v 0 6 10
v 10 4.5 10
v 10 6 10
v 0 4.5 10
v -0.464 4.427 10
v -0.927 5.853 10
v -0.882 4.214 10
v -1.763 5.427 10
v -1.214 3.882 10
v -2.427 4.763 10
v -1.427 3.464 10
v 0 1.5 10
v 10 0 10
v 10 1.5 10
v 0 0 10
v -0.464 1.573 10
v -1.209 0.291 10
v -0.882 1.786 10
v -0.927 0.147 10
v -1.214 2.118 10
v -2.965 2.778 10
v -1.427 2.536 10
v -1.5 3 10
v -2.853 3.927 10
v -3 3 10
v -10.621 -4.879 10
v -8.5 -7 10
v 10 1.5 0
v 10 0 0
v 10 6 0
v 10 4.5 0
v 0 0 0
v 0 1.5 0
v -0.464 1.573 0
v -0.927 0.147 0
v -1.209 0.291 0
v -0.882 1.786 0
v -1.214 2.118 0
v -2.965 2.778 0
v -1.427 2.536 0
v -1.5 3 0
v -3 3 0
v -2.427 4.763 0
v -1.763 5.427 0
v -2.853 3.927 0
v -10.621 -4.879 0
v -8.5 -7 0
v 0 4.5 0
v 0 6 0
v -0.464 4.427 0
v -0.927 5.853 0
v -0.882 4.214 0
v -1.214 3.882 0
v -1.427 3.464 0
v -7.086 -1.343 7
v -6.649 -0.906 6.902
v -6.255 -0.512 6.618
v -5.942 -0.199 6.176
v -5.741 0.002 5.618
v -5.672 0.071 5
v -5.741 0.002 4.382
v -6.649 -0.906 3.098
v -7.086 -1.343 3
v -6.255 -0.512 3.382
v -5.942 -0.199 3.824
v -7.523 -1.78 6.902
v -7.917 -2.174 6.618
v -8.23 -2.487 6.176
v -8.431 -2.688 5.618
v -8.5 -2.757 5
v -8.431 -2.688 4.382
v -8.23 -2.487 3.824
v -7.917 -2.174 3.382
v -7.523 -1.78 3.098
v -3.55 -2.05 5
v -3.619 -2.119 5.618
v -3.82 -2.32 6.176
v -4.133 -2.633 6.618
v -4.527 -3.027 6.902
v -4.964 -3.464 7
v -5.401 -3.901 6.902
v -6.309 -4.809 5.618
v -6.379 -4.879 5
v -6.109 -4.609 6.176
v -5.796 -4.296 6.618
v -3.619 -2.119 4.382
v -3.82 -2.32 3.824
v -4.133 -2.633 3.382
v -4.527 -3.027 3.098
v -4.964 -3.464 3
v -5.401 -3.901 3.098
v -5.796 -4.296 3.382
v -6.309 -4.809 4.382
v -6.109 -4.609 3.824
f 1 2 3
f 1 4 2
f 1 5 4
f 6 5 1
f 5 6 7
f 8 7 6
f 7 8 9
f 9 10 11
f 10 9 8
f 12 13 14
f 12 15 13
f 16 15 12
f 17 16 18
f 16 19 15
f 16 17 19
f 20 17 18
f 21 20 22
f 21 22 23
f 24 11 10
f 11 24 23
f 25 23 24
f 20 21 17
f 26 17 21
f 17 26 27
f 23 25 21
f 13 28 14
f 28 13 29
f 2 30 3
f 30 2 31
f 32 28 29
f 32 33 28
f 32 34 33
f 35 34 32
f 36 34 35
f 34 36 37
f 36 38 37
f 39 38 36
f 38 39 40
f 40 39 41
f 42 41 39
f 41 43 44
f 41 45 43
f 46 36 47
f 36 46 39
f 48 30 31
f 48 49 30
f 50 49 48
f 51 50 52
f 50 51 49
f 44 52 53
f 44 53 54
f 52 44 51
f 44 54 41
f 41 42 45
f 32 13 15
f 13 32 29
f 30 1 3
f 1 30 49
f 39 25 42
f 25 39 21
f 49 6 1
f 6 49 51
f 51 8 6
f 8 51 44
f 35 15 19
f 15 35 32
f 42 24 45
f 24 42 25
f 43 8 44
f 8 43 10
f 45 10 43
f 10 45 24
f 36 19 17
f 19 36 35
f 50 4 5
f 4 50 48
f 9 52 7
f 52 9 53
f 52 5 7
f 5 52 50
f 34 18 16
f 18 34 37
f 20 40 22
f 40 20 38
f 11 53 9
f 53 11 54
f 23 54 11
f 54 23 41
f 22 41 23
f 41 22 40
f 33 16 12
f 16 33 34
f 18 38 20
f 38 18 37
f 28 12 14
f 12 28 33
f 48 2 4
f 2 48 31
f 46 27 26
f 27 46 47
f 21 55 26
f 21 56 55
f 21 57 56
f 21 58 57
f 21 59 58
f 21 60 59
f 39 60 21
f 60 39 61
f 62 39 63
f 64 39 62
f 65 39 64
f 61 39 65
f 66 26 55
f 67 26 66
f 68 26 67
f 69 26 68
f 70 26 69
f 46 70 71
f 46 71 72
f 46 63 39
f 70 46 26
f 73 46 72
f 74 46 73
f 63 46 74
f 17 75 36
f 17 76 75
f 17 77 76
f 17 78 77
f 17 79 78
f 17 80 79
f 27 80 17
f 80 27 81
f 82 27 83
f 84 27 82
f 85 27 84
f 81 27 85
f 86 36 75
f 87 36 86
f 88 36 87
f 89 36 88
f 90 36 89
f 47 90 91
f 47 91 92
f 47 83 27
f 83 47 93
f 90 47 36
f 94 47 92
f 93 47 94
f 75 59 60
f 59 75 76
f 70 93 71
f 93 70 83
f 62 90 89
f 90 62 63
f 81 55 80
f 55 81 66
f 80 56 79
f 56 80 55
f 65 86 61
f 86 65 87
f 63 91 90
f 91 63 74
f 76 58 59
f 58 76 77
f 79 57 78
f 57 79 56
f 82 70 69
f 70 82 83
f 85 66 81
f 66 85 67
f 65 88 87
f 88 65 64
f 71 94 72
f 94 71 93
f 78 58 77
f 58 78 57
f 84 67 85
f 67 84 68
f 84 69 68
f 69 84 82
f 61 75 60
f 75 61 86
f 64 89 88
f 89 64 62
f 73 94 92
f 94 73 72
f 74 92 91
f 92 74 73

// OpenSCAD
/*
 * Fan mount.scad
 *
 * Lets you hang a fan of various sizes (I used a 120mm case fan) from the side
 * of the Tiny Boy / Fabrikator mini.
 *
 * Michael Fincham <michael@hotplate.co.nz>
 * 
 */

$fn = 20;

difference() {
    union() {
        cube([10,6,10]);
        translate([0, 3, 0]) {
            cylinder(r=3, h=10);
        }
    }
    translate([0, 3, 0]) {
        cylinder(r=1.5, h=10);
    }
    translate([0, 1.5, 0]) {
        cube([10,3,10]);
    }
}

translate([-8.5, -7, 0]) {
    rotate([0, 0, 45]) {
        difference() {
            cube([11,3,10]);
            translate([5, 5, 5]) {
                rotate([90, 0, 0]) {
                    cylinder(r=2, h=10);
                }
            }
        }
    }
}
